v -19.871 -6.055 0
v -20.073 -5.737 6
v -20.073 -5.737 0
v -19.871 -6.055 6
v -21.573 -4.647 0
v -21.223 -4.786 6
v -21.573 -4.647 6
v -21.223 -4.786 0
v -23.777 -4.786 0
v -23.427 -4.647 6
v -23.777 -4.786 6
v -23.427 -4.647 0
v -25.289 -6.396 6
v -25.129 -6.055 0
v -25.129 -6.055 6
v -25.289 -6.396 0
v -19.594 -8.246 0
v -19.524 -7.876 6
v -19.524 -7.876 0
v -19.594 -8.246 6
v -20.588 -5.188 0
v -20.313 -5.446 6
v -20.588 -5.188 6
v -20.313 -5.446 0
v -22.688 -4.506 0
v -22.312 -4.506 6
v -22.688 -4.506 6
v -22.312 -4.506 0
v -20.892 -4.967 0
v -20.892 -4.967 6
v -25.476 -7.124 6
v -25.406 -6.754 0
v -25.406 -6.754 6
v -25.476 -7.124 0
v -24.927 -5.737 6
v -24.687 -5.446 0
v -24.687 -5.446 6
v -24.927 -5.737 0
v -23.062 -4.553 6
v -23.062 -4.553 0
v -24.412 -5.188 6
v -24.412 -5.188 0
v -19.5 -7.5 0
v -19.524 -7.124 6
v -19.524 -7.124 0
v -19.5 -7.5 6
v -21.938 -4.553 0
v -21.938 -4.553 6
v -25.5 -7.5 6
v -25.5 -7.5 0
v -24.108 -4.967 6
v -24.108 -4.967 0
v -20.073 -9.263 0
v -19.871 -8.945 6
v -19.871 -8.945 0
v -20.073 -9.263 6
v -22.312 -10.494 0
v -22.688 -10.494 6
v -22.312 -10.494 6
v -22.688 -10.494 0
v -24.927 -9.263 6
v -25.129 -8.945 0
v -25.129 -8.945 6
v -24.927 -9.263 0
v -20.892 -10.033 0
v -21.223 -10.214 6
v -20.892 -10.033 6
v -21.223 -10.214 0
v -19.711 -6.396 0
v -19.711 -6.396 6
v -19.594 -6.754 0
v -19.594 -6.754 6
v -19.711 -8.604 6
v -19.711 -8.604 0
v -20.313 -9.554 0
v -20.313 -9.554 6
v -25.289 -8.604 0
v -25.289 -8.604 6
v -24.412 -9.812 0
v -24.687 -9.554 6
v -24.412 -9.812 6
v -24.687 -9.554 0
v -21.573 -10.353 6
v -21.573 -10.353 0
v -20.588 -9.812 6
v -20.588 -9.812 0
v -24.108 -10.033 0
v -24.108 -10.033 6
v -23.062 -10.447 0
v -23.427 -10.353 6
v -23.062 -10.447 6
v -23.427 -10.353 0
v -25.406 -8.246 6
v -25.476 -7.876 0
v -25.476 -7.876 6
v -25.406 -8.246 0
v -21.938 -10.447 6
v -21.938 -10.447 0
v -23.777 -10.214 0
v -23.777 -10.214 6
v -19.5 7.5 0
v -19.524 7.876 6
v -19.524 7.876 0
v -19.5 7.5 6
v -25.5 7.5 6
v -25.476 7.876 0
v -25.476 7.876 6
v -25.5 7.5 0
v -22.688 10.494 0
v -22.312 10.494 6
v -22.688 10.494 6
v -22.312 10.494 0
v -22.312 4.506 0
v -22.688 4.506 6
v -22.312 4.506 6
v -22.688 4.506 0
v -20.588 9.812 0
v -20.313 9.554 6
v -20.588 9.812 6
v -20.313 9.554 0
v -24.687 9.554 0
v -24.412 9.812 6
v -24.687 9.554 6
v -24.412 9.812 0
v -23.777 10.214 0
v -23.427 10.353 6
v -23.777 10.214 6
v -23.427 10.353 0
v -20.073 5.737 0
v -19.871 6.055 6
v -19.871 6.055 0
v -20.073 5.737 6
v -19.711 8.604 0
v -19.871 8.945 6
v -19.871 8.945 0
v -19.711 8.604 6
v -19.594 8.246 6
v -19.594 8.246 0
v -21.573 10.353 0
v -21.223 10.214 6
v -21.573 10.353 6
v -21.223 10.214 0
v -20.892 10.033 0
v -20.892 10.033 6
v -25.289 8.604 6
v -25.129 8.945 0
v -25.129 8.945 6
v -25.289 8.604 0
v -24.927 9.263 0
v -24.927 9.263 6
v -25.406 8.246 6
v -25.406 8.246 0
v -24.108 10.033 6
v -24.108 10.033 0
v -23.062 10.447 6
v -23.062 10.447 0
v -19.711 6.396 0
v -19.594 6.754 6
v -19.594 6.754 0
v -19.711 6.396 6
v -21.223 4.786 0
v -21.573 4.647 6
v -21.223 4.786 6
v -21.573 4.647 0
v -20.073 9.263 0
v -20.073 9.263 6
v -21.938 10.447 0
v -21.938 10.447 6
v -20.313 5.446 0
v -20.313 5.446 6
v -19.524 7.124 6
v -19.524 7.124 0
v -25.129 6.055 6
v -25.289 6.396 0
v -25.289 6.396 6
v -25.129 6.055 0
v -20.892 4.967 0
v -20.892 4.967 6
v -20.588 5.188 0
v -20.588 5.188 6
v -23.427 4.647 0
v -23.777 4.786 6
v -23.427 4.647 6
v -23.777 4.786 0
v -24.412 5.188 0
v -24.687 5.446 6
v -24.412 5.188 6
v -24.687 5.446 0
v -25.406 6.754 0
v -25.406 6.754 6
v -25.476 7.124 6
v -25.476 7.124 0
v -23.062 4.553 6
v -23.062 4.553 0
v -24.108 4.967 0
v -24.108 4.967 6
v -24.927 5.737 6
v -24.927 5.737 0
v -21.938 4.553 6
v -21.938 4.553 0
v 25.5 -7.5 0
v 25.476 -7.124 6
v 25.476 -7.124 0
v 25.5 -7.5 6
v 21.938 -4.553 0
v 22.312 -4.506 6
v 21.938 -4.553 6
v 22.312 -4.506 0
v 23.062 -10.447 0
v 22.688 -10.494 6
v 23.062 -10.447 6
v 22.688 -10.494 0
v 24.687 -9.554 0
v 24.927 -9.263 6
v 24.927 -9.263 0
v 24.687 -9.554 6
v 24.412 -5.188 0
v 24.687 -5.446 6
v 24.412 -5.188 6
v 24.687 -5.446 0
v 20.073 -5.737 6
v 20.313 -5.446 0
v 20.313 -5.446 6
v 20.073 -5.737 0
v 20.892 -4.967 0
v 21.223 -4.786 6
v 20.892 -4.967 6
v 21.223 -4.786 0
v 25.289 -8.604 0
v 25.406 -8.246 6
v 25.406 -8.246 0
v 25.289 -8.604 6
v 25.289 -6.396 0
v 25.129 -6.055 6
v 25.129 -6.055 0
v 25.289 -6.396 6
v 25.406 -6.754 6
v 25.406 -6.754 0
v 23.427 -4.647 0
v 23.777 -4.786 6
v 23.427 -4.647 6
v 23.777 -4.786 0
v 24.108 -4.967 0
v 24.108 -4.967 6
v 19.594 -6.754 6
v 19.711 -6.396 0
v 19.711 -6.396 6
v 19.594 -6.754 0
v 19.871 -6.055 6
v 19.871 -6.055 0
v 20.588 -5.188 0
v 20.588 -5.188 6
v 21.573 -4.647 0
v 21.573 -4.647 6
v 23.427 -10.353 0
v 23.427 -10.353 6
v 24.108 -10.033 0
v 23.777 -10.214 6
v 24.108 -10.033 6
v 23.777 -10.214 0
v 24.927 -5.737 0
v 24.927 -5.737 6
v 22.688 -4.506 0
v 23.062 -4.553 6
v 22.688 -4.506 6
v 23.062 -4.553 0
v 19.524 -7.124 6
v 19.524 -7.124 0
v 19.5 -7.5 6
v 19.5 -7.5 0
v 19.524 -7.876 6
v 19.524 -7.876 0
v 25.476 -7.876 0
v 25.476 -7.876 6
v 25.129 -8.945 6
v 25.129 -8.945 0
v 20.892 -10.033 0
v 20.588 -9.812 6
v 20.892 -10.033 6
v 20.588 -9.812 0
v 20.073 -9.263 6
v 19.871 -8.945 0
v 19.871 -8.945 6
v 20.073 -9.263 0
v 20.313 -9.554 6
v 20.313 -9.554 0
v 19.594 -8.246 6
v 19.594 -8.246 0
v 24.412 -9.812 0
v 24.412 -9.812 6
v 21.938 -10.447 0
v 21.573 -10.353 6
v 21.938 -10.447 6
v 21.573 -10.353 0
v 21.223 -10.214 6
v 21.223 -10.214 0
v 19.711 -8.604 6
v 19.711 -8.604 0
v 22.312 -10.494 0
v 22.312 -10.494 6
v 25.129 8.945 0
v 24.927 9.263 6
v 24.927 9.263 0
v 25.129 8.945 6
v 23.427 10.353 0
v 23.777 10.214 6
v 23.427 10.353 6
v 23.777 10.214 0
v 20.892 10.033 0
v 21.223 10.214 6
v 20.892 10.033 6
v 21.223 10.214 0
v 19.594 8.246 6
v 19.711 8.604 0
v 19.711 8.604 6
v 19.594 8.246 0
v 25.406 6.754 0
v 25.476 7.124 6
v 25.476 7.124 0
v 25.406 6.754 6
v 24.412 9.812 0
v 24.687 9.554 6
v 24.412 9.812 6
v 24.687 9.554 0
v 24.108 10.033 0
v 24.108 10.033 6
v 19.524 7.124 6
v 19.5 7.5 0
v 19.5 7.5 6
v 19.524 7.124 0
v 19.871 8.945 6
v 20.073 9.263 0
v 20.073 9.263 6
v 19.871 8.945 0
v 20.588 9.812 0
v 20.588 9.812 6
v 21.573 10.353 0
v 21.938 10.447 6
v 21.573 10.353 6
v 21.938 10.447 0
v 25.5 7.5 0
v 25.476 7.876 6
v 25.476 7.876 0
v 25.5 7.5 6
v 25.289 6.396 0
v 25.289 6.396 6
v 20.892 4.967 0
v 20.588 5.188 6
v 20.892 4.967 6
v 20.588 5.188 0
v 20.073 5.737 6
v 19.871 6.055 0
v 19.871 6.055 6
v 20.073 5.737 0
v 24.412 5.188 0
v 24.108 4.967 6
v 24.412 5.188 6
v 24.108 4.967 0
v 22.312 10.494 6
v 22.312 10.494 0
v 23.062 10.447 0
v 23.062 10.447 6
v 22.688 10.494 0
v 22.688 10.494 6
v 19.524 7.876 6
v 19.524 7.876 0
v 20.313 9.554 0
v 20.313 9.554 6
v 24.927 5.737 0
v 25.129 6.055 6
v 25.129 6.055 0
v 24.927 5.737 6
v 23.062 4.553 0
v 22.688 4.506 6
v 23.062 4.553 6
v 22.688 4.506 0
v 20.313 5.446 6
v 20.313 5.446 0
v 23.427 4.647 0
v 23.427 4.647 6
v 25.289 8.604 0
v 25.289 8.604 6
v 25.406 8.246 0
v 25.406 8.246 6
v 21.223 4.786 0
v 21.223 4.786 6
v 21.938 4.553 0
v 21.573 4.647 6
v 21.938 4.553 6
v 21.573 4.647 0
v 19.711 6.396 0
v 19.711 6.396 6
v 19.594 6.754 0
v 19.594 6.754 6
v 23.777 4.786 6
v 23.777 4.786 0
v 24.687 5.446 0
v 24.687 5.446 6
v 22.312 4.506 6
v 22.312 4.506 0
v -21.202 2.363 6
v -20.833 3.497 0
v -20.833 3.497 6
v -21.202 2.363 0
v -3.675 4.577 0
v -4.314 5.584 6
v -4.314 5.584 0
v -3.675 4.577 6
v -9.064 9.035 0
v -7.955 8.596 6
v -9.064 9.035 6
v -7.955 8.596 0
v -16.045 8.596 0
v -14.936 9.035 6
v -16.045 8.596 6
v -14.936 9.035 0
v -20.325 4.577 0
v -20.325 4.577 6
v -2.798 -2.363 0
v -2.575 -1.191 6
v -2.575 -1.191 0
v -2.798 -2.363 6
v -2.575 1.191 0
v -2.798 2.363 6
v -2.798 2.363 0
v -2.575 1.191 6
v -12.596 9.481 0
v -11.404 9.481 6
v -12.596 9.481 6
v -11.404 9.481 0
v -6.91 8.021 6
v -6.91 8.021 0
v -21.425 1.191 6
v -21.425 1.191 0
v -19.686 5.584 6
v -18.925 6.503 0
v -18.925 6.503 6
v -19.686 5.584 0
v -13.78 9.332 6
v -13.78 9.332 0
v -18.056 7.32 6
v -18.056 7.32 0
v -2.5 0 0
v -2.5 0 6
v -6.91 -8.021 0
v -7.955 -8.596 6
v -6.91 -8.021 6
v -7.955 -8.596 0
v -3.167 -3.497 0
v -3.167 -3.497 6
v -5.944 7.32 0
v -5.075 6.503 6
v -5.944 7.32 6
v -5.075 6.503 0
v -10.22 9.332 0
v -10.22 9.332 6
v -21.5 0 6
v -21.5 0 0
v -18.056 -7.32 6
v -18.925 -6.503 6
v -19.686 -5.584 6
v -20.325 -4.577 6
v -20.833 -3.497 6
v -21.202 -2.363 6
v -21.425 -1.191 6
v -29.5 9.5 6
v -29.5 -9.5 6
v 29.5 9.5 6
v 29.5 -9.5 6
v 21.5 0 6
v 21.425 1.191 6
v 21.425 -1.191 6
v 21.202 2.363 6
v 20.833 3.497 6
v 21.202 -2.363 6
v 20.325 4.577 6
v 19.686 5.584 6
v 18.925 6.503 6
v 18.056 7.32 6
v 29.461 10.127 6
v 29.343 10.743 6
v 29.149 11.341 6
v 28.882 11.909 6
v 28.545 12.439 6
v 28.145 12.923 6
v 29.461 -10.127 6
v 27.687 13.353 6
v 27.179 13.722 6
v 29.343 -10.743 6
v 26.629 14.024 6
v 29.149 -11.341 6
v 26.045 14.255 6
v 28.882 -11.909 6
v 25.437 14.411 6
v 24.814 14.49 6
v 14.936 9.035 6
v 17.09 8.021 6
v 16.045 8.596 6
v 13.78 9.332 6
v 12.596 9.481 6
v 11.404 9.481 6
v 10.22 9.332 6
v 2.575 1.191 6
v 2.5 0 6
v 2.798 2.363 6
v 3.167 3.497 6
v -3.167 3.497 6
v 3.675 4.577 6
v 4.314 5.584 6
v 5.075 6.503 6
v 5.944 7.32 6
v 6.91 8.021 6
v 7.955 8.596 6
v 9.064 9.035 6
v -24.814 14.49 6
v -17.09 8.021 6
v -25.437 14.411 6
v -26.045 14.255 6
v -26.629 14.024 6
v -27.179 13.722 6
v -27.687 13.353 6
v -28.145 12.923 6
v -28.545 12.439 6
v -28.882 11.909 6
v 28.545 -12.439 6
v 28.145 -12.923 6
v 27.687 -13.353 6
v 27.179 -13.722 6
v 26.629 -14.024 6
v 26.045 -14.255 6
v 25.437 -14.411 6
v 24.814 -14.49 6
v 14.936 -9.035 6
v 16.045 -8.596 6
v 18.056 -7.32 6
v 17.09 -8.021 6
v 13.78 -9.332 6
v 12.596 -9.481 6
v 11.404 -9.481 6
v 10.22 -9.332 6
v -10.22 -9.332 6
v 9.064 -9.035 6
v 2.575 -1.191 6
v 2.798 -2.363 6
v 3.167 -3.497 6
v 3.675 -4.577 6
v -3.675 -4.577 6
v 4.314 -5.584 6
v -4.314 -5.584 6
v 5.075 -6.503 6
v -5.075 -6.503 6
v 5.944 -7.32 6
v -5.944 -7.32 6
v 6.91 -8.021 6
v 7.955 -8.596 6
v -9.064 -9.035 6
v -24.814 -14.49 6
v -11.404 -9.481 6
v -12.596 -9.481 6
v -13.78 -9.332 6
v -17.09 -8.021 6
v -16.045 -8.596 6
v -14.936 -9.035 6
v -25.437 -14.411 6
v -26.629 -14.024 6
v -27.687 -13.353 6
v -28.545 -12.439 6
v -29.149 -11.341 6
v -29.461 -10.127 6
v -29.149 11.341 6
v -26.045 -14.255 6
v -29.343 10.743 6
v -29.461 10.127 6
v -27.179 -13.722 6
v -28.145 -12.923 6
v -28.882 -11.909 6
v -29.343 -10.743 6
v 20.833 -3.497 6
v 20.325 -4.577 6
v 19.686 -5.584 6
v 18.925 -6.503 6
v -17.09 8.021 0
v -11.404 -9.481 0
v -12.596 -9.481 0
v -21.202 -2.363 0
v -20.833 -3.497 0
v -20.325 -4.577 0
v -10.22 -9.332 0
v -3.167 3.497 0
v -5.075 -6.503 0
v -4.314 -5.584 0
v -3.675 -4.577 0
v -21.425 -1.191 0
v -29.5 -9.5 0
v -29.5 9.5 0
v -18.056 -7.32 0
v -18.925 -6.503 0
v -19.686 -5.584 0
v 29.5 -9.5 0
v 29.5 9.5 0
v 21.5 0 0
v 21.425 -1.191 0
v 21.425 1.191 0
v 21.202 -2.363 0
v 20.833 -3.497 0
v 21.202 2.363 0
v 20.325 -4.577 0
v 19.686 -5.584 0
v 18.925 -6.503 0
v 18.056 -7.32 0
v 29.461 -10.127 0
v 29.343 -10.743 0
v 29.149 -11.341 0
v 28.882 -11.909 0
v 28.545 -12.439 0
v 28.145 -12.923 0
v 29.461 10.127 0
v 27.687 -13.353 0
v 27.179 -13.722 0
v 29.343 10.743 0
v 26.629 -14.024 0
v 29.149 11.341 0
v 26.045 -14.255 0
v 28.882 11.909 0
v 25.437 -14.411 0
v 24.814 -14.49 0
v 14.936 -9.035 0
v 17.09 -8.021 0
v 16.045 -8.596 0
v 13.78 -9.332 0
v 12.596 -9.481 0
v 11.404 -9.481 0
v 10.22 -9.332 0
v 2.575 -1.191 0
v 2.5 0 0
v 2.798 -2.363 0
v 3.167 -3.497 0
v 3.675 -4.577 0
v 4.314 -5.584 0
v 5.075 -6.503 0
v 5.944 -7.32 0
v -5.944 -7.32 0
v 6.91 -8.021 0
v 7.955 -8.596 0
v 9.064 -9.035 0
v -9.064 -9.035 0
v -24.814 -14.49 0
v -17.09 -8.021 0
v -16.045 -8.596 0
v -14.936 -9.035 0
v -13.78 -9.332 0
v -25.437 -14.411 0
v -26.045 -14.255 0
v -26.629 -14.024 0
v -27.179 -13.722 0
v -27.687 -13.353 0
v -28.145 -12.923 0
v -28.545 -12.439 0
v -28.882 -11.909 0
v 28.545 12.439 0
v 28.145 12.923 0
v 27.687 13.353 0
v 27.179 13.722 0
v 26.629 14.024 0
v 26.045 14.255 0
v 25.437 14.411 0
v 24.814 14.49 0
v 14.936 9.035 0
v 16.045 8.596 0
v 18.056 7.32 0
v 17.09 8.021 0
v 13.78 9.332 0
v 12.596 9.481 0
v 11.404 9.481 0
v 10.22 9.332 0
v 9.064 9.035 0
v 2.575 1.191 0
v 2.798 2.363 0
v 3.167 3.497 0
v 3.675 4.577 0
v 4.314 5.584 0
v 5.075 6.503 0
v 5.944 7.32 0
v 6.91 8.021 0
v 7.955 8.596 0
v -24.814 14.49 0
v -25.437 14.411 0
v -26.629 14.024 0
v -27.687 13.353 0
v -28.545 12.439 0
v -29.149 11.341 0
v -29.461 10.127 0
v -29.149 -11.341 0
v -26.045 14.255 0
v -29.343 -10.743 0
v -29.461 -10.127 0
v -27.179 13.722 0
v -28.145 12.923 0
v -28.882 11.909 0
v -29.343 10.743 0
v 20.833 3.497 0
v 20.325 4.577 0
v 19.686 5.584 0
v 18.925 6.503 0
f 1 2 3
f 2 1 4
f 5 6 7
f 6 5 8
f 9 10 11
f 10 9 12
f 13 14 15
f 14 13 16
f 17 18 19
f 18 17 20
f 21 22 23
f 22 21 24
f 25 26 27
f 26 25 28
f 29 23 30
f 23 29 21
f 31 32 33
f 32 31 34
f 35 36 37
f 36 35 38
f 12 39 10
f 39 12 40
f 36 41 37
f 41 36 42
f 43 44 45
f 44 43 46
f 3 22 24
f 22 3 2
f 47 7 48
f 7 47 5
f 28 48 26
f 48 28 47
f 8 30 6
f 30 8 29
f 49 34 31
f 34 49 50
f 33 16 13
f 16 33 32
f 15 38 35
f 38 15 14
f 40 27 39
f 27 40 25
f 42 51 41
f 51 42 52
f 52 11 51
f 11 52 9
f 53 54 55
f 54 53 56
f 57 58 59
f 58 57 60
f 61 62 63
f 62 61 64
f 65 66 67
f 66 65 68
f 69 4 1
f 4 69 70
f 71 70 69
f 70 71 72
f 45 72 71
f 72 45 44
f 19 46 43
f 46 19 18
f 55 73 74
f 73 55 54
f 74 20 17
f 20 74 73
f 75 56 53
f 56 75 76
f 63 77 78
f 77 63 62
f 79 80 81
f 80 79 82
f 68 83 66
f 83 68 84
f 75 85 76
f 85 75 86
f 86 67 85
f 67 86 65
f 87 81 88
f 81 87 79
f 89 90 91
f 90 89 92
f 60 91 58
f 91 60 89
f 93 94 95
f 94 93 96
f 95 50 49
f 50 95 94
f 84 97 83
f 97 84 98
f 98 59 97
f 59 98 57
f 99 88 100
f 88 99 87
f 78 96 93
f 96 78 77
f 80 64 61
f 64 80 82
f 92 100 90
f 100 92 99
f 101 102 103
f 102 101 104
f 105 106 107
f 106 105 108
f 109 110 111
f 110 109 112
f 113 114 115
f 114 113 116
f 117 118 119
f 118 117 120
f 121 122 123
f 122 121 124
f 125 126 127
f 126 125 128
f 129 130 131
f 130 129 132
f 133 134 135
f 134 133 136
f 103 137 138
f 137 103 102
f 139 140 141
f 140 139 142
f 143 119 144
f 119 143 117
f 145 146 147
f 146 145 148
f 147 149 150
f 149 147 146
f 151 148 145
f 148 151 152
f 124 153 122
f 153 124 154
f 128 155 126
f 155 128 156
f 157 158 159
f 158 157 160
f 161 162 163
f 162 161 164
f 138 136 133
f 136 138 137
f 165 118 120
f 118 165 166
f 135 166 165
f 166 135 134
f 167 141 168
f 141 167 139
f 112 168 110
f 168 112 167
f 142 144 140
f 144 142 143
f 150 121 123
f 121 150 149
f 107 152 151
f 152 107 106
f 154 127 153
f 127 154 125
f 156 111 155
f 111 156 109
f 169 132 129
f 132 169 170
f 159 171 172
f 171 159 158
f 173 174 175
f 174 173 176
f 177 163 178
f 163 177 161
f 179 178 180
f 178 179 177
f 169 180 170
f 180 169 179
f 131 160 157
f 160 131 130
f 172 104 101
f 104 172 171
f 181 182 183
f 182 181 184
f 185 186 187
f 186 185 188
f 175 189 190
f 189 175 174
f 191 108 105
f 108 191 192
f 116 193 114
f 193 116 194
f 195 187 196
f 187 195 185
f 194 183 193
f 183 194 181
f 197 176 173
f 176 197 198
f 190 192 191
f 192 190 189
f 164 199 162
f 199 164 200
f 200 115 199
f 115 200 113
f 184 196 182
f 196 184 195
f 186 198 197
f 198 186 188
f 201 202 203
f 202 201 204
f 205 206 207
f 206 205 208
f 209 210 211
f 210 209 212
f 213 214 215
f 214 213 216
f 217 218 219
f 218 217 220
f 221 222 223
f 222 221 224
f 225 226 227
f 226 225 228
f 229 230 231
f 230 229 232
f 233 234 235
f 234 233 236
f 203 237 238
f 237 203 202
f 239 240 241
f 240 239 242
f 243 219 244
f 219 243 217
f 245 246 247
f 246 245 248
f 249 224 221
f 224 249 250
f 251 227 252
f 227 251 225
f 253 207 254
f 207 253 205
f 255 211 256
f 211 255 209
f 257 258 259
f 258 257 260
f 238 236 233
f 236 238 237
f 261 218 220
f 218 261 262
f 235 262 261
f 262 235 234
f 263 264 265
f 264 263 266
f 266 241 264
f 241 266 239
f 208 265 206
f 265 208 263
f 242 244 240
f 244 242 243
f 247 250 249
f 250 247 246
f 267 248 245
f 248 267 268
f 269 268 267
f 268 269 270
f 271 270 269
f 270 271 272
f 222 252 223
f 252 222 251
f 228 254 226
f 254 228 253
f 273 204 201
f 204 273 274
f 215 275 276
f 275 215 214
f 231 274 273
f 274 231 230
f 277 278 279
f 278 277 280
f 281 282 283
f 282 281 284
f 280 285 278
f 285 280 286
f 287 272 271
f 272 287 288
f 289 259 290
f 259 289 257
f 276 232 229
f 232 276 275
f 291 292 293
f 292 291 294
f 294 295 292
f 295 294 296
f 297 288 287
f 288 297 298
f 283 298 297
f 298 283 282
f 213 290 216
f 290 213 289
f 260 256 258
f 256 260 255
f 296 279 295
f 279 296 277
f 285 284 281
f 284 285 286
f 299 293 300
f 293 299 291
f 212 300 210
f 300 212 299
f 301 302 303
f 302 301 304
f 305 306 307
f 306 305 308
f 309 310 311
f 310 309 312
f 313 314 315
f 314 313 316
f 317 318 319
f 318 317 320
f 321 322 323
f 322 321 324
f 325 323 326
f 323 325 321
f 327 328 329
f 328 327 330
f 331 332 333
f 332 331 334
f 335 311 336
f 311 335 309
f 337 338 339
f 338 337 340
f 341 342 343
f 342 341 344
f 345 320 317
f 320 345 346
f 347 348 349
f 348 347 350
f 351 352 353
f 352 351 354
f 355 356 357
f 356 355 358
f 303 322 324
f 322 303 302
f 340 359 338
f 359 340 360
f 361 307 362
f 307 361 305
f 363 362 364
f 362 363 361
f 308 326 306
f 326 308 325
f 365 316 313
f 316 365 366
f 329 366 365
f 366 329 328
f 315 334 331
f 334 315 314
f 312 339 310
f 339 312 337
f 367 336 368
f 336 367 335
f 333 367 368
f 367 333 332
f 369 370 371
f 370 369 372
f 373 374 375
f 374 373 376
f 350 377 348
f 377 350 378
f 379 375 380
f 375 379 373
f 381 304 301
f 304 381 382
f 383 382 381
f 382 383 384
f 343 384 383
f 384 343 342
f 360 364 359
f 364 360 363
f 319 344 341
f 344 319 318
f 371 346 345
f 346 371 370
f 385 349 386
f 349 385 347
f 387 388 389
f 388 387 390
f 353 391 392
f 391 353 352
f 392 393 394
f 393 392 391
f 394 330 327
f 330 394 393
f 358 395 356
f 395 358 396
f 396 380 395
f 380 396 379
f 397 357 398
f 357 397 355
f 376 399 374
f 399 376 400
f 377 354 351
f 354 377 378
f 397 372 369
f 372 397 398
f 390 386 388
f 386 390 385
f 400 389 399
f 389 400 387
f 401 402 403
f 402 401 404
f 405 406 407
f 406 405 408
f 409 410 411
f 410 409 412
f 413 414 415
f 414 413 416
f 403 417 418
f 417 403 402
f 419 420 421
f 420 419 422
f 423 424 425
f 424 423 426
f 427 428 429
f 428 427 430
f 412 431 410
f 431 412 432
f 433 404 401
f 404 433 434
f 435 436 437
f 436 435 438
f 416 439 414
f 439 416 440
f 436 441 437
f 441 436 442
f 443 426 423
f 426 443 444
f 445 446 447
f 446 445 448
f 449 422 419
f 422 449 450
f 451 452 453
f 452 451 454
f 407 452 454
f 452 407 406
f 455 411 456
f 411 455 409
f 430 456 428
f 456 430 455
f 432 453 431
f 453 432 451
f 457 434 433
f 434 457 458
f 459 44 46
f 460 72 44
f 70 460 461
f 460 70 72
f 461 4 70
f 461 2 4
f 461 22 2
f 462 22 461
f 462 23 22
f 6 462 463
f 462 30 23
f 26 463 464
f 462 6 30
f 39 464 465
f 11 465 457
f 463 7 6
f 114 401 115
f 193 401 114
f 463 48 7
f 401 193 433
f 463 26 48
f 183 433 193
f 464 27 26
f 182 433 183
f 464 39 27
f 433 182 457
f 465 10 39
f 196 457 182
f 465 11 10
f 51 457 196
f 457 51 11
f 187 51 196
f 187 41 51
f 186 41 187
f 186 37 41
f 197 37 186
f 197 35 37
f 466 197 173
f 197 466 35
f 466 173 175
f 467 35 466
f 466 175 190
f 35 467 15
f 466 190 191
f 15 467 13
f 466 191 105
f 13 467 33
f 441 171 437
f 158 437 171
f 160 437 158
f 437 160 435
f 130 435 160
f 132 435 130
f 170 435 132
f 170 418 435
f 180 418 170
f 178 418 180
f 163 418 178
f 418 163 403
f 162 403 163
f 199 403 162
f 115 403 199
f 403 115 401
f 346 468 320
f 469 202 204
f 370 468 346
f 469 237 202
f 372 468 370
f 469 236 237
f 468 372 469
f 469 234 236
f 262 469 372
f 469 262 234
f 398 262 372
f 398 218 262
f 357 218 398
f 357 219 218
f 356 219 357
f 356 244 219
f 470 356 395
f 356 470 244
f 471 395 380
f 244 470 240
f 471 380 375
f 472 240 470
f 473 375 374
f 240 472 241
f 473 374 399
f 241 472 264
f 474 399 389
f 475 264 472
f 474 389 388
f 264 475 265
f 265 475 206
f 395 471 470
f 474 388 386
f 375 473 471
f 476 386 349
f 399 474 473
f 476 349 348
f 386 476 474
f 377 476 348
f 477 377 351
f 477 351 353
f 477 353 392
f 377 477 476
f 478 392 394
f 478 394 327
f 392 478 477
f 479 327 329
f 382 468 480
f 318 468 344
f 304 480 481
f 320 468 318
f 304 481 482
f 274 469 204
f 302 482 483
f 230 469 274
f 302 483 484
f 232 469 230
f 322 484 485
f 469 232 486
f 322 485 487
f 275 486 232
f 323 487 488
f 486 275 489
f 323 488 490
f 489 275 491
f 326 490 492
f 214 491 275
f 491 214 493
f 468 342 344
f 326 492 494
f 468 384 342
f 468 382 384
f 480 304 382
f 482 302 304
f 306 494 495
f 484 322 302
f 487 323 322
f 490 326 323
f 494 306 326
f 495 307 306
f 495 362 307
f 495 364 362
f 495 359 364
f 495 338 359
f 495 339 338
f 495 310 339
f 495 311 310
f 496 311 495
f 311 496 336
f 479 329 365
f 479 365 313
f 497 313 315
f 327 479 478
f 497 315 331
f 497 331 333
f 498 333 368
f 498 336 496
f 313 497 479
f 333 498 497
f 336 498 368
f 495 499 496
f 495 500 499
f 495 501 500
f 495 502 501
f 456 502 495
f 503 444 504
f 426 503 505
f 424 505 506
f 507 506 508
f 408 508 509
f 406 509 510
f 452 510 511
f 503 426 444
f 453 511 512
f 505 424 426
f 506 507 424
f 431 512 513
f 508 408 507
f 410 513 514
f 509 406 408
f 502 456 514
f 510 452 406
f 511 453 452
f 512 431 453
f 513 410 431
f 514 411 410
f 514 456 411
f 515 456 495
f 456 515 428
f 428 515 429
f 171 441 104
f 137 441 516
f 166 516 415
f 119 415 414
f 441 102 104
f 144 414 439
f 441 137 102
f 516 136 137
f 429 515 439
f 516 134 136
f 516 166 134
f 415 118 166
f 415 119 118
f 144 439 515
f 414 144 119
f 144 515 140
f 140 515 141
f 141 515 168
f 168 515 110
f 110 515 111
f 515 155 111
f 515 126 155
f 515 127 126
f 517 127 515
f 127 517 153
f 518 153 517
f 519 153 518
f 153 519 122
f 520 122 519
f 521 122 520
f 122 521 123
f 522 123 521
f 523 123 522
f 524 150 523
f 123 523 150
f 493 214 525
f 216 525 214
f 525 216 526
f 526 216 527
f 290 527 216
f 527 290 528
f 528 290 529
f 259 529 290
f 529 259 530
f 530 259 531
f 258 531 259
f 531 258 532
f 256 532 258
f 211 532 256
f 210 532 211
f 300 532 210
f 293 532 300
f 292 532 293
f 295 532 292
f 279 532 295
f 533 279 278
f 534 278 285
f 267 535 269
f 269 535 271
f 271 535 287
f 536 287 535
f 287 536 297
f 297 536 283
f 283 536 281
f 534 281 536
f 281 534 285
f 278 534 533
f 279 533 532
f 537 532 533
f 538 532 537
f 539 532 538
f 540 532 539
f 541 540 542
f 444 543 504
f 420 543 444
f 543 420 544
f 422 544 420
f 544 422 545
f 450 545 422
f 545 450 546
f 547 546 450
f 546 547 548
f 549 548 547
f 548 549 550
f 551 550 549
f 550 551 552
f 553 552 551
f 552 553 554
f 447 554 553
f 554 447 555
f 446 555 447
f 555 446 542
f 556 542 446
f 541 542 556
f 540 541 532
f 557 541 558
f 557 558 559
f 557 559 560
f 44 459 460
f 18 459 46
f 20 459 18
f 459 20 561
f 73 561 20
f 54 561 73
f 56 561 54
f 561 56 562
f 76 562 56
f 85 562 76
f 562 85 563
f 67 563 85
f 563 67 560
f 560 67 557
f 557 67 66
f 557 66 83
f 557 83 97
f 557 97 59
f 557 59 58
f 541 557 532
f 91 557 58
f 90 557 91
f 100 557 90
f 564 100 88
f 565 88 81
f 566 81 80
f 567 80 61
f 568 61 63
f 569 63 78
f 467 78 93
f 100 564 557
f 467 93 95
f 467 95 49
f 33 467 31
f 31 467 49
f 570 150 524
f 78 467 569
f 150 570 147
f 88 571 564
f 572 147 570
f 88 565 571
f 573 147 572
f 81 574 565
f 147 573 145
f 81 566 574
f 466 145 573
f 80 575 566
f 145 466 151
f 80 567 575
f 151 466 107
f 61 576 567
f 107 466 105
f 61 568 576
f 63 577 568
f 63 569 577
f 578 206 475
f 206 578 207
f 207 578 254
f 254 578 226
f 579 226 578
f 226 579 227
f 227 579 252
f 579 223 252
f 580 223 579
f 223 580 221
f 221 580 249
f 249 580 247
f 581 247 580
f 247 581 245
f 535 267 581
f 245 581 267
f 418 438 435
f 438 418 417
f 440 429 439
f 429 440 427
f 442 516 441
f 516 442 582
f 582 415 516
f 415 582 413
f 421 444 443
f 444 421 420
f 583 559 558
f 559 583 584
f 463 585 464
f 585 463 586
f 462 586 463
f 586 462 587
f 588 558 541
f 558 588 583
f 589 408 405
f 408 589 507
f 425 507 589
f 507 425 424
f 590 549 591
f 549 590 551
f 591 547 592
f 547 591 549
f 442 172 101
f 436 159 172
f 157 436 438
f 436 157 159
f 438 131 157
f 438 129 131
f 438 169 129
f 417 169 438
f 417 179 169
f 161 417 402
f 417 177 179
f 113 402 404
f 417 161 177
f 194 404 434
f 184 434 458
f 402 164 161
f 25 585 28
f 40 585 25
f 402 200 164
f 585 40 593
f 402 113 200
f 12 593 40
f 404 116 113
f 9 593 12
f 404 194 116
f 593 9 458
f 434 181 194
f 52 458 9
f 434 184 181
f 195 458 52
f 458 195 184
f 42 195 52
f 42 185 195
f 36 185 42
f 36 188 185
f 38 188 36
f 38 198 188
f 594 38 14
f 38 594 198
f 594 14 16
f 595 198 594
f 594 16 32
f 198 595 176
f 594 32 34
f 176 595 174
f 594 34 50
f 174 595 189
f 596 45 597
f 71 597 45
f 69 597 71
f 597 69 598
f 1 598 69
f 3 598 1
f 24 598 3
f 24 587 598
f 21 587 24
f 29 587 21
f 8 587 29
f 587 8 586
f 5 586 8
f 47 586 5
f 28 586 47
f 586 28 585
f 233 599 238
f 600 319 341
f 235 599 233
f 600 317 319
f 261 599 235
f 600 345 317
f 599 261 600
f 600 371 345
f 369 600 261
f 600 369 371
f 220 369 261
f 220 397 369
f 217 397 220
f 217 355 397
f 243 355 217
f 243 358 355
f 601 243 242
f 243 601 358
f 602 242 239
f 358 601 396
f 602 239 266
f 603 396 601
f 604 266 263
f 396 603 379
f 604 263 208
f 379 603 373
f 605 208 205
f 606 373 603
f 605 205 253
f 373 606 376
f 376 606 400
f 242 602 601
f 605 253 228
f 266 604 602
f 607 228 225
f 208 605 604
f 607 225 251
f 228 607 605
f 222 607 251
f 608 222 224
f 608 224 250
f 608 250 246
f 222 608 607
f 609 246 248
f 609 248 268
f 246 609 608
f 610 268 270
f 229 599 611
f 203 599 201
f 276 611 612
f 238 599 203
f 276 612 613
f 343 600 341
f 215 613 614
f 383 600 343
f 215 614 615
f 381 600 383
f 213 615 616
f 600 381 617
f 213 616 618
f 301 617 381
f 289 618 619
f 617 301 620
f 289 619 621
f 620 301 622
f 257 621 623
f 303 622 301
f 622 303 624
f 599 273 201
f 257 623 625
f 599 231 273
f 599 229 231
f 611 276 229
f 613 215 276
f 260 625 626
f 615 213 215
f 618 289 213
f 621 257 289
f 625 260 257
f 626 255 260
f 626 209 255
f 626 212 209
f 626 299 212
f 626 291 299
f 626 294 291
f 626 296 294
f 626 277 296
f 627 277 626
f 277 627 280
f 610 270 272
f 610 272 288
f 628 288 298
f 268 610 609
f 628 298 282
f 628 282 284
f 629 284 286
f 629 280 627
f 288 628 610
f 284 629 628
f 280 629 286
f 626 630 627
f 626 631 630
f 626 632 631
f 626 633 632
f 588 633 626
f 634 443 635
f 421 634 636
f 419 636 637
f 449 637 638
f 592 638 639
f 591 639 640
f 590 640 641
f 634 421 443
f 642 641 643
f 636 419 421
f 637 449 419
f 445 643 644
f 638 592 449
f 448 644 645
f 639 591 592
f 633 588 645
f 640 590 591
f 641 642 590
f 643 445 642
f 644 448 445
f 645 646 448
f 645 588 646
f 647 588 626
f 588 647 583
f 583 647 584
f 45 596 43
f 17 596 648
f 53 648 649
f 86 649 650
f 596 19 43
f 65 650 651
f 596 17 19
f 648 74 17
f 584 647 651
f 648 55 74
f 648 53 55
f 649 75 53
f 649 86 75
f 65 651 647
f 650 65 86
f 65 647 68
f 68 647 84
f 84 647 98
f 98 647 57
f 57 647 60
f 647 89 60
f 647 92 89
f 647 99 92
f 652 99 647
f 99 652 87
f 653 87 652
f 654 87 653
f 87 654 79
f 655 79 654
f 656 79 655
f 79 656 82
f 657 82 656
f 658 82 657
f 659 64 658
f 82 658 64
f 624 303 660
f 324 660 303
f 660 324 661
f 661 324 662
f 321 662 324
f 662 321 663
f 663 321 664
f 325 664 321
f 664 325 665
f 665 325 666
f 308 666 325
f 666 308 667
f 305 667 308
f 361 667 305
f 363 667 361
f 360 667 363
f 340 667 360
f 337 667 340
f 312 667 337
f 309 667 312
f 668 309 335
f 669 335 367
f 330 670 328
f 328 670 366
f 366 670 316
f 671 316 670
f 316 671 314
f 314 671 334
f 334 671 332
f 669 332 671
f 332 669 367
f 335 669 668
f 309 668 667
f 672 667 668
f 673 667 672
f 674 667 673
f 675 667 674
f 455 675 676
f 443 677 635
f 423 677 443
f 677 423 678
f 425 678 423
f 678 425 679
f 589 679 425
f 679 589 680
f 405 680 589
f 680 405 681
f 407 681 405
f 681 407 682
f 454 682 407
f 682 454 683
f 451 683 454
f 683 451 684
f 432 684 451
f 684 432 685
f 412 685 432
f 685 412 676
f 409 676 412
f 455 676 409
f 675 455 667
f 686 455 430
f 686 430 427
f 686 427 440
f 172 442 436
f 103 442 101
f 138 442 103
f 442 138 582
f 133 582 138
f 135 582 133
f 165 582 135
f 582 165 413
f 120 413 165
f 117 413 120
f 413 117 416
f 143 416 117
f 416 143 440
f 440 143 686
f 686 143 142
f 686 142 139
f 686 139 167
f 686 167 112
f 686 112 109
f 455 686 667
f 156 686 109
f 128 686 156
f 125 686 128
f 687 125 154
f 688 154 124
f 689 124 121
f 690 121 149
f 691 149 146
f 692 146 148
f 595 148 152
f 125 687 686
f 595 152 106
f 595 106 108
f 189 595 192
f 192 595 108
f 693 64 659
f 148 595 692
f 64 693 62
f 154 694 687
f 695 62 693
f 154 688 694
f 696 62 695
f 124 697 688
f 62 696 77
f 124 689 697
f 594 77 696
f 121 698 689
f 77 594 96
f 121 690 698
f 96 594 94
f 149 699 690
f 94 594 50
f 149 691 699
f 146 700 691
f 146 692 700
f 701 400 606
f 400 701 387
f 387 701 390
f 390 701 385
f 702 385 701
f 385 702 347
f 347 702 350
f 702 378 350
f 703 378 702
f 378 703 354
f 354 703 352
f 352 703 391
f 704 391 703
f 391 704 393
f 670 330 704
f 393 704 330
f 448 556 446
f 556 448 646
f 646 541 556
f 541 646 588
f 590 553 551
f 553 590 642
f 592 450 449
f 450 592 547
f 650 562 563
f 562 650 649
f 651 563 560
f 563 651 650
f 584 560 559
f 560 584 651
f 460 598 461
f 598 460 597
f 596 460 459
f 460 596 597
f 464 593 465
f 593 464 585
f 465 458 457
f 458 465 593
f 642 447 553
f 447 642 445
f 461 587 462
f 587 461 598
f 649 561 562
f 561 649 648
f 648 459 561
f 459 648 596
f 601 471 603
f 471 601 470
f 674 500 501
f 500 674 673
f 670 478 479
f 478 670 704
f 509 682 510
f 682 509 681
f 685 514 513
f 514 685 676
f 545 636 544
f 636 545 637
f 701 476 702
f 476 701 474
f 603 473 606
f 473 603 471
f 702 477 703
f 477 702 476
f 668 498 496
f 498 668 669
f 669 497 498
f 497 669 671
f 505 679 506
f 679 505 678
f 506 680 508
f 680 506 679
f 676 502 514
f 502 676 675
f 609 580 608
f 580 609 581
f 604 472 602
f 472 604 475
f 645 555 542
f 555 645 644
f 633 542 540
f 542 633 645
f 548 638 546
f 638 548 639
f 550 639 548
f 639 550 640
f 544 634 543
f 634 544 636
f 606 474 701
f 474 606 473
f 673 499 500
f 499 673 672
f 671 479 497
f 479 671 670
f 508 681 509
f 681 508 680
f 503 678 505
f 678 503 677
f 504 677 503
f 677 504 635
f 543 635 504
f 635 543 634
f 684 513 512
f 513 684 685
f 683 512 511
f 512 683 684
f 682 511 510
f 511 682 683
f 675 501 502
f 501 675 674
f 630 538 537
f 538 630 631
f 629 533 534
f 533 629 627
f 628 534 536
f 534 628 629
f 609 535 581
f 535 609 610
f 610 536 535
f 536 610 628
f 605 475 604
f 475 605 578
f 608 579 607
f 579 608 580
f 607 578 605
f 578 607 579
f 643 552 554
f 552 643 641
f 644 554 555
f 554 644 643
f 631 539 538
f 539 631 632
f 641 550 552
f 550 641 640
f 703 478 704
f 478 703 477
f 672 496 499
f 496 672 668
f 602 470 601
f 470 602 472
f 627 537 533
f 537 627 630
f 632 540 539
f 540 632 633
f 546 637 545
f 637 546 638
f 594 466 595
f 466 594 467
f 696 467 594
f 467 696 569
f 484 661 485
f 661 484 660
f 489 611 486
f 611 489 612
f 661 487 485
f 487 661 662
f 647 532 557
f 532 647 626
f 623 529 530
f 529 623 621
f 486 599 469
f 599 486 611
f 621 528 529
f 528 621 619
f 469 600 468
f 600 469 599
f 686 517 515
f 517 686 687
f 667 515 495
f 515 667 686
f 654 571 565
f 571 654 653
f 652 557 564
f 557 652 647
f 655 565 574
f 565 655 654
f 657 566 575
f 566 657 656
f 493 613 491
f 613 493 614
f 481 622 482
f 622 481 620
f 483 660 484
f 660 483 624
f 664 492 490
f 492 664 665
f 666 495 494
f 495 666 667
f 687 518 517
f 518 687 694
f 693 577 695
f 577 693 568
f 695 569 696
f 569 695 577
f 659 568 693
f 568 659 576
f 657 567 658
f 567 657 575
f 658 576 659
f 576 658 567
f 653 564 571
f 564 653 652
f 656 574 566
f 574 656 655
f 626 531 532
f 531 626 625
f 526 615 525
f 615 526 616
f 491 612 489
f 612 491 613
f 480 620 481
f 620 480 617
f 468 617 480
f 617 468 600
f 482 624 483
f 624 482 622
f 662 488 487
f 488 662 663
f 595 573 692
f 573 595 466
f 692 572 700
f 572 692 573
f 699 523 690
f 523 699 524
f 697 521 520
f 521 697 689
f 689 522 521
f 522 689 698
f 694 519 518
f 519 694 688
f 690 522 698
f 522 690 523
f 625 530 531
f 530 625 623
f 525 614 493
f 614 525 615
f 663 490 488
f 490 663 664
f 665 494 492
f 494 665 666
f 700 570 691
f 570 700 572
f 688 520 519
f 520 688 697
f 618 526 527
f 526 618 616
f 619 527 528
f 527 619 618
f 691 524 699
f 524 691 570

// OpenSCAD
$fn = 50;


difference() {
	union() {
		hull() {
			translate(v = [-24.5000000000, 9.5000000000, 0]) {
				cylinder(h = 6, r = 5);
			}
			translate(v = [24.5000000000, 9.5000000000, 0]) {
				cylinder(h = 6, r = 5);
			}
			translate(v = [-24.5000000000, -9.5000000000, 0]) {
				cylinder(h = 6, r = 5);
			}
			translate(v = [24.5000000000, -9.5000000000, 0]) {
				cylinder(h = 6, r = 5);
			}
		}
	}
	union() {
		#translate(v = [-22.5000000000, -7.5000000000, -100.0000000000]) {
			cylinder(h = 200, r = 3.0000000000);
		}
		#translate(v = [-22.5000000000, 7.5000000000, -100.0000000000]) {
			cylinder(h = 200, r = 3.0000000000);
		}
		#translate(v = [22.5000000000, -7.5000000000, -100.0000000000]) {
			cylinder(h = 200, r = 3.0000000000);
		}
		#translate(v = [22.5000000000, 7.5000000000, -100.0000000000]) {
			cylinder(h = 200, r = 3.0000000000);
		}
		#translate(v = [-12.0000000000, 0, 0]) {
			cylinder(h = 6, r = 9.5000000000);
		}
		#translate(v = [12.0000000000, 0, 0]) {
			cylinder(h = 6, r = 9.5000000000);
		}
	}
}
